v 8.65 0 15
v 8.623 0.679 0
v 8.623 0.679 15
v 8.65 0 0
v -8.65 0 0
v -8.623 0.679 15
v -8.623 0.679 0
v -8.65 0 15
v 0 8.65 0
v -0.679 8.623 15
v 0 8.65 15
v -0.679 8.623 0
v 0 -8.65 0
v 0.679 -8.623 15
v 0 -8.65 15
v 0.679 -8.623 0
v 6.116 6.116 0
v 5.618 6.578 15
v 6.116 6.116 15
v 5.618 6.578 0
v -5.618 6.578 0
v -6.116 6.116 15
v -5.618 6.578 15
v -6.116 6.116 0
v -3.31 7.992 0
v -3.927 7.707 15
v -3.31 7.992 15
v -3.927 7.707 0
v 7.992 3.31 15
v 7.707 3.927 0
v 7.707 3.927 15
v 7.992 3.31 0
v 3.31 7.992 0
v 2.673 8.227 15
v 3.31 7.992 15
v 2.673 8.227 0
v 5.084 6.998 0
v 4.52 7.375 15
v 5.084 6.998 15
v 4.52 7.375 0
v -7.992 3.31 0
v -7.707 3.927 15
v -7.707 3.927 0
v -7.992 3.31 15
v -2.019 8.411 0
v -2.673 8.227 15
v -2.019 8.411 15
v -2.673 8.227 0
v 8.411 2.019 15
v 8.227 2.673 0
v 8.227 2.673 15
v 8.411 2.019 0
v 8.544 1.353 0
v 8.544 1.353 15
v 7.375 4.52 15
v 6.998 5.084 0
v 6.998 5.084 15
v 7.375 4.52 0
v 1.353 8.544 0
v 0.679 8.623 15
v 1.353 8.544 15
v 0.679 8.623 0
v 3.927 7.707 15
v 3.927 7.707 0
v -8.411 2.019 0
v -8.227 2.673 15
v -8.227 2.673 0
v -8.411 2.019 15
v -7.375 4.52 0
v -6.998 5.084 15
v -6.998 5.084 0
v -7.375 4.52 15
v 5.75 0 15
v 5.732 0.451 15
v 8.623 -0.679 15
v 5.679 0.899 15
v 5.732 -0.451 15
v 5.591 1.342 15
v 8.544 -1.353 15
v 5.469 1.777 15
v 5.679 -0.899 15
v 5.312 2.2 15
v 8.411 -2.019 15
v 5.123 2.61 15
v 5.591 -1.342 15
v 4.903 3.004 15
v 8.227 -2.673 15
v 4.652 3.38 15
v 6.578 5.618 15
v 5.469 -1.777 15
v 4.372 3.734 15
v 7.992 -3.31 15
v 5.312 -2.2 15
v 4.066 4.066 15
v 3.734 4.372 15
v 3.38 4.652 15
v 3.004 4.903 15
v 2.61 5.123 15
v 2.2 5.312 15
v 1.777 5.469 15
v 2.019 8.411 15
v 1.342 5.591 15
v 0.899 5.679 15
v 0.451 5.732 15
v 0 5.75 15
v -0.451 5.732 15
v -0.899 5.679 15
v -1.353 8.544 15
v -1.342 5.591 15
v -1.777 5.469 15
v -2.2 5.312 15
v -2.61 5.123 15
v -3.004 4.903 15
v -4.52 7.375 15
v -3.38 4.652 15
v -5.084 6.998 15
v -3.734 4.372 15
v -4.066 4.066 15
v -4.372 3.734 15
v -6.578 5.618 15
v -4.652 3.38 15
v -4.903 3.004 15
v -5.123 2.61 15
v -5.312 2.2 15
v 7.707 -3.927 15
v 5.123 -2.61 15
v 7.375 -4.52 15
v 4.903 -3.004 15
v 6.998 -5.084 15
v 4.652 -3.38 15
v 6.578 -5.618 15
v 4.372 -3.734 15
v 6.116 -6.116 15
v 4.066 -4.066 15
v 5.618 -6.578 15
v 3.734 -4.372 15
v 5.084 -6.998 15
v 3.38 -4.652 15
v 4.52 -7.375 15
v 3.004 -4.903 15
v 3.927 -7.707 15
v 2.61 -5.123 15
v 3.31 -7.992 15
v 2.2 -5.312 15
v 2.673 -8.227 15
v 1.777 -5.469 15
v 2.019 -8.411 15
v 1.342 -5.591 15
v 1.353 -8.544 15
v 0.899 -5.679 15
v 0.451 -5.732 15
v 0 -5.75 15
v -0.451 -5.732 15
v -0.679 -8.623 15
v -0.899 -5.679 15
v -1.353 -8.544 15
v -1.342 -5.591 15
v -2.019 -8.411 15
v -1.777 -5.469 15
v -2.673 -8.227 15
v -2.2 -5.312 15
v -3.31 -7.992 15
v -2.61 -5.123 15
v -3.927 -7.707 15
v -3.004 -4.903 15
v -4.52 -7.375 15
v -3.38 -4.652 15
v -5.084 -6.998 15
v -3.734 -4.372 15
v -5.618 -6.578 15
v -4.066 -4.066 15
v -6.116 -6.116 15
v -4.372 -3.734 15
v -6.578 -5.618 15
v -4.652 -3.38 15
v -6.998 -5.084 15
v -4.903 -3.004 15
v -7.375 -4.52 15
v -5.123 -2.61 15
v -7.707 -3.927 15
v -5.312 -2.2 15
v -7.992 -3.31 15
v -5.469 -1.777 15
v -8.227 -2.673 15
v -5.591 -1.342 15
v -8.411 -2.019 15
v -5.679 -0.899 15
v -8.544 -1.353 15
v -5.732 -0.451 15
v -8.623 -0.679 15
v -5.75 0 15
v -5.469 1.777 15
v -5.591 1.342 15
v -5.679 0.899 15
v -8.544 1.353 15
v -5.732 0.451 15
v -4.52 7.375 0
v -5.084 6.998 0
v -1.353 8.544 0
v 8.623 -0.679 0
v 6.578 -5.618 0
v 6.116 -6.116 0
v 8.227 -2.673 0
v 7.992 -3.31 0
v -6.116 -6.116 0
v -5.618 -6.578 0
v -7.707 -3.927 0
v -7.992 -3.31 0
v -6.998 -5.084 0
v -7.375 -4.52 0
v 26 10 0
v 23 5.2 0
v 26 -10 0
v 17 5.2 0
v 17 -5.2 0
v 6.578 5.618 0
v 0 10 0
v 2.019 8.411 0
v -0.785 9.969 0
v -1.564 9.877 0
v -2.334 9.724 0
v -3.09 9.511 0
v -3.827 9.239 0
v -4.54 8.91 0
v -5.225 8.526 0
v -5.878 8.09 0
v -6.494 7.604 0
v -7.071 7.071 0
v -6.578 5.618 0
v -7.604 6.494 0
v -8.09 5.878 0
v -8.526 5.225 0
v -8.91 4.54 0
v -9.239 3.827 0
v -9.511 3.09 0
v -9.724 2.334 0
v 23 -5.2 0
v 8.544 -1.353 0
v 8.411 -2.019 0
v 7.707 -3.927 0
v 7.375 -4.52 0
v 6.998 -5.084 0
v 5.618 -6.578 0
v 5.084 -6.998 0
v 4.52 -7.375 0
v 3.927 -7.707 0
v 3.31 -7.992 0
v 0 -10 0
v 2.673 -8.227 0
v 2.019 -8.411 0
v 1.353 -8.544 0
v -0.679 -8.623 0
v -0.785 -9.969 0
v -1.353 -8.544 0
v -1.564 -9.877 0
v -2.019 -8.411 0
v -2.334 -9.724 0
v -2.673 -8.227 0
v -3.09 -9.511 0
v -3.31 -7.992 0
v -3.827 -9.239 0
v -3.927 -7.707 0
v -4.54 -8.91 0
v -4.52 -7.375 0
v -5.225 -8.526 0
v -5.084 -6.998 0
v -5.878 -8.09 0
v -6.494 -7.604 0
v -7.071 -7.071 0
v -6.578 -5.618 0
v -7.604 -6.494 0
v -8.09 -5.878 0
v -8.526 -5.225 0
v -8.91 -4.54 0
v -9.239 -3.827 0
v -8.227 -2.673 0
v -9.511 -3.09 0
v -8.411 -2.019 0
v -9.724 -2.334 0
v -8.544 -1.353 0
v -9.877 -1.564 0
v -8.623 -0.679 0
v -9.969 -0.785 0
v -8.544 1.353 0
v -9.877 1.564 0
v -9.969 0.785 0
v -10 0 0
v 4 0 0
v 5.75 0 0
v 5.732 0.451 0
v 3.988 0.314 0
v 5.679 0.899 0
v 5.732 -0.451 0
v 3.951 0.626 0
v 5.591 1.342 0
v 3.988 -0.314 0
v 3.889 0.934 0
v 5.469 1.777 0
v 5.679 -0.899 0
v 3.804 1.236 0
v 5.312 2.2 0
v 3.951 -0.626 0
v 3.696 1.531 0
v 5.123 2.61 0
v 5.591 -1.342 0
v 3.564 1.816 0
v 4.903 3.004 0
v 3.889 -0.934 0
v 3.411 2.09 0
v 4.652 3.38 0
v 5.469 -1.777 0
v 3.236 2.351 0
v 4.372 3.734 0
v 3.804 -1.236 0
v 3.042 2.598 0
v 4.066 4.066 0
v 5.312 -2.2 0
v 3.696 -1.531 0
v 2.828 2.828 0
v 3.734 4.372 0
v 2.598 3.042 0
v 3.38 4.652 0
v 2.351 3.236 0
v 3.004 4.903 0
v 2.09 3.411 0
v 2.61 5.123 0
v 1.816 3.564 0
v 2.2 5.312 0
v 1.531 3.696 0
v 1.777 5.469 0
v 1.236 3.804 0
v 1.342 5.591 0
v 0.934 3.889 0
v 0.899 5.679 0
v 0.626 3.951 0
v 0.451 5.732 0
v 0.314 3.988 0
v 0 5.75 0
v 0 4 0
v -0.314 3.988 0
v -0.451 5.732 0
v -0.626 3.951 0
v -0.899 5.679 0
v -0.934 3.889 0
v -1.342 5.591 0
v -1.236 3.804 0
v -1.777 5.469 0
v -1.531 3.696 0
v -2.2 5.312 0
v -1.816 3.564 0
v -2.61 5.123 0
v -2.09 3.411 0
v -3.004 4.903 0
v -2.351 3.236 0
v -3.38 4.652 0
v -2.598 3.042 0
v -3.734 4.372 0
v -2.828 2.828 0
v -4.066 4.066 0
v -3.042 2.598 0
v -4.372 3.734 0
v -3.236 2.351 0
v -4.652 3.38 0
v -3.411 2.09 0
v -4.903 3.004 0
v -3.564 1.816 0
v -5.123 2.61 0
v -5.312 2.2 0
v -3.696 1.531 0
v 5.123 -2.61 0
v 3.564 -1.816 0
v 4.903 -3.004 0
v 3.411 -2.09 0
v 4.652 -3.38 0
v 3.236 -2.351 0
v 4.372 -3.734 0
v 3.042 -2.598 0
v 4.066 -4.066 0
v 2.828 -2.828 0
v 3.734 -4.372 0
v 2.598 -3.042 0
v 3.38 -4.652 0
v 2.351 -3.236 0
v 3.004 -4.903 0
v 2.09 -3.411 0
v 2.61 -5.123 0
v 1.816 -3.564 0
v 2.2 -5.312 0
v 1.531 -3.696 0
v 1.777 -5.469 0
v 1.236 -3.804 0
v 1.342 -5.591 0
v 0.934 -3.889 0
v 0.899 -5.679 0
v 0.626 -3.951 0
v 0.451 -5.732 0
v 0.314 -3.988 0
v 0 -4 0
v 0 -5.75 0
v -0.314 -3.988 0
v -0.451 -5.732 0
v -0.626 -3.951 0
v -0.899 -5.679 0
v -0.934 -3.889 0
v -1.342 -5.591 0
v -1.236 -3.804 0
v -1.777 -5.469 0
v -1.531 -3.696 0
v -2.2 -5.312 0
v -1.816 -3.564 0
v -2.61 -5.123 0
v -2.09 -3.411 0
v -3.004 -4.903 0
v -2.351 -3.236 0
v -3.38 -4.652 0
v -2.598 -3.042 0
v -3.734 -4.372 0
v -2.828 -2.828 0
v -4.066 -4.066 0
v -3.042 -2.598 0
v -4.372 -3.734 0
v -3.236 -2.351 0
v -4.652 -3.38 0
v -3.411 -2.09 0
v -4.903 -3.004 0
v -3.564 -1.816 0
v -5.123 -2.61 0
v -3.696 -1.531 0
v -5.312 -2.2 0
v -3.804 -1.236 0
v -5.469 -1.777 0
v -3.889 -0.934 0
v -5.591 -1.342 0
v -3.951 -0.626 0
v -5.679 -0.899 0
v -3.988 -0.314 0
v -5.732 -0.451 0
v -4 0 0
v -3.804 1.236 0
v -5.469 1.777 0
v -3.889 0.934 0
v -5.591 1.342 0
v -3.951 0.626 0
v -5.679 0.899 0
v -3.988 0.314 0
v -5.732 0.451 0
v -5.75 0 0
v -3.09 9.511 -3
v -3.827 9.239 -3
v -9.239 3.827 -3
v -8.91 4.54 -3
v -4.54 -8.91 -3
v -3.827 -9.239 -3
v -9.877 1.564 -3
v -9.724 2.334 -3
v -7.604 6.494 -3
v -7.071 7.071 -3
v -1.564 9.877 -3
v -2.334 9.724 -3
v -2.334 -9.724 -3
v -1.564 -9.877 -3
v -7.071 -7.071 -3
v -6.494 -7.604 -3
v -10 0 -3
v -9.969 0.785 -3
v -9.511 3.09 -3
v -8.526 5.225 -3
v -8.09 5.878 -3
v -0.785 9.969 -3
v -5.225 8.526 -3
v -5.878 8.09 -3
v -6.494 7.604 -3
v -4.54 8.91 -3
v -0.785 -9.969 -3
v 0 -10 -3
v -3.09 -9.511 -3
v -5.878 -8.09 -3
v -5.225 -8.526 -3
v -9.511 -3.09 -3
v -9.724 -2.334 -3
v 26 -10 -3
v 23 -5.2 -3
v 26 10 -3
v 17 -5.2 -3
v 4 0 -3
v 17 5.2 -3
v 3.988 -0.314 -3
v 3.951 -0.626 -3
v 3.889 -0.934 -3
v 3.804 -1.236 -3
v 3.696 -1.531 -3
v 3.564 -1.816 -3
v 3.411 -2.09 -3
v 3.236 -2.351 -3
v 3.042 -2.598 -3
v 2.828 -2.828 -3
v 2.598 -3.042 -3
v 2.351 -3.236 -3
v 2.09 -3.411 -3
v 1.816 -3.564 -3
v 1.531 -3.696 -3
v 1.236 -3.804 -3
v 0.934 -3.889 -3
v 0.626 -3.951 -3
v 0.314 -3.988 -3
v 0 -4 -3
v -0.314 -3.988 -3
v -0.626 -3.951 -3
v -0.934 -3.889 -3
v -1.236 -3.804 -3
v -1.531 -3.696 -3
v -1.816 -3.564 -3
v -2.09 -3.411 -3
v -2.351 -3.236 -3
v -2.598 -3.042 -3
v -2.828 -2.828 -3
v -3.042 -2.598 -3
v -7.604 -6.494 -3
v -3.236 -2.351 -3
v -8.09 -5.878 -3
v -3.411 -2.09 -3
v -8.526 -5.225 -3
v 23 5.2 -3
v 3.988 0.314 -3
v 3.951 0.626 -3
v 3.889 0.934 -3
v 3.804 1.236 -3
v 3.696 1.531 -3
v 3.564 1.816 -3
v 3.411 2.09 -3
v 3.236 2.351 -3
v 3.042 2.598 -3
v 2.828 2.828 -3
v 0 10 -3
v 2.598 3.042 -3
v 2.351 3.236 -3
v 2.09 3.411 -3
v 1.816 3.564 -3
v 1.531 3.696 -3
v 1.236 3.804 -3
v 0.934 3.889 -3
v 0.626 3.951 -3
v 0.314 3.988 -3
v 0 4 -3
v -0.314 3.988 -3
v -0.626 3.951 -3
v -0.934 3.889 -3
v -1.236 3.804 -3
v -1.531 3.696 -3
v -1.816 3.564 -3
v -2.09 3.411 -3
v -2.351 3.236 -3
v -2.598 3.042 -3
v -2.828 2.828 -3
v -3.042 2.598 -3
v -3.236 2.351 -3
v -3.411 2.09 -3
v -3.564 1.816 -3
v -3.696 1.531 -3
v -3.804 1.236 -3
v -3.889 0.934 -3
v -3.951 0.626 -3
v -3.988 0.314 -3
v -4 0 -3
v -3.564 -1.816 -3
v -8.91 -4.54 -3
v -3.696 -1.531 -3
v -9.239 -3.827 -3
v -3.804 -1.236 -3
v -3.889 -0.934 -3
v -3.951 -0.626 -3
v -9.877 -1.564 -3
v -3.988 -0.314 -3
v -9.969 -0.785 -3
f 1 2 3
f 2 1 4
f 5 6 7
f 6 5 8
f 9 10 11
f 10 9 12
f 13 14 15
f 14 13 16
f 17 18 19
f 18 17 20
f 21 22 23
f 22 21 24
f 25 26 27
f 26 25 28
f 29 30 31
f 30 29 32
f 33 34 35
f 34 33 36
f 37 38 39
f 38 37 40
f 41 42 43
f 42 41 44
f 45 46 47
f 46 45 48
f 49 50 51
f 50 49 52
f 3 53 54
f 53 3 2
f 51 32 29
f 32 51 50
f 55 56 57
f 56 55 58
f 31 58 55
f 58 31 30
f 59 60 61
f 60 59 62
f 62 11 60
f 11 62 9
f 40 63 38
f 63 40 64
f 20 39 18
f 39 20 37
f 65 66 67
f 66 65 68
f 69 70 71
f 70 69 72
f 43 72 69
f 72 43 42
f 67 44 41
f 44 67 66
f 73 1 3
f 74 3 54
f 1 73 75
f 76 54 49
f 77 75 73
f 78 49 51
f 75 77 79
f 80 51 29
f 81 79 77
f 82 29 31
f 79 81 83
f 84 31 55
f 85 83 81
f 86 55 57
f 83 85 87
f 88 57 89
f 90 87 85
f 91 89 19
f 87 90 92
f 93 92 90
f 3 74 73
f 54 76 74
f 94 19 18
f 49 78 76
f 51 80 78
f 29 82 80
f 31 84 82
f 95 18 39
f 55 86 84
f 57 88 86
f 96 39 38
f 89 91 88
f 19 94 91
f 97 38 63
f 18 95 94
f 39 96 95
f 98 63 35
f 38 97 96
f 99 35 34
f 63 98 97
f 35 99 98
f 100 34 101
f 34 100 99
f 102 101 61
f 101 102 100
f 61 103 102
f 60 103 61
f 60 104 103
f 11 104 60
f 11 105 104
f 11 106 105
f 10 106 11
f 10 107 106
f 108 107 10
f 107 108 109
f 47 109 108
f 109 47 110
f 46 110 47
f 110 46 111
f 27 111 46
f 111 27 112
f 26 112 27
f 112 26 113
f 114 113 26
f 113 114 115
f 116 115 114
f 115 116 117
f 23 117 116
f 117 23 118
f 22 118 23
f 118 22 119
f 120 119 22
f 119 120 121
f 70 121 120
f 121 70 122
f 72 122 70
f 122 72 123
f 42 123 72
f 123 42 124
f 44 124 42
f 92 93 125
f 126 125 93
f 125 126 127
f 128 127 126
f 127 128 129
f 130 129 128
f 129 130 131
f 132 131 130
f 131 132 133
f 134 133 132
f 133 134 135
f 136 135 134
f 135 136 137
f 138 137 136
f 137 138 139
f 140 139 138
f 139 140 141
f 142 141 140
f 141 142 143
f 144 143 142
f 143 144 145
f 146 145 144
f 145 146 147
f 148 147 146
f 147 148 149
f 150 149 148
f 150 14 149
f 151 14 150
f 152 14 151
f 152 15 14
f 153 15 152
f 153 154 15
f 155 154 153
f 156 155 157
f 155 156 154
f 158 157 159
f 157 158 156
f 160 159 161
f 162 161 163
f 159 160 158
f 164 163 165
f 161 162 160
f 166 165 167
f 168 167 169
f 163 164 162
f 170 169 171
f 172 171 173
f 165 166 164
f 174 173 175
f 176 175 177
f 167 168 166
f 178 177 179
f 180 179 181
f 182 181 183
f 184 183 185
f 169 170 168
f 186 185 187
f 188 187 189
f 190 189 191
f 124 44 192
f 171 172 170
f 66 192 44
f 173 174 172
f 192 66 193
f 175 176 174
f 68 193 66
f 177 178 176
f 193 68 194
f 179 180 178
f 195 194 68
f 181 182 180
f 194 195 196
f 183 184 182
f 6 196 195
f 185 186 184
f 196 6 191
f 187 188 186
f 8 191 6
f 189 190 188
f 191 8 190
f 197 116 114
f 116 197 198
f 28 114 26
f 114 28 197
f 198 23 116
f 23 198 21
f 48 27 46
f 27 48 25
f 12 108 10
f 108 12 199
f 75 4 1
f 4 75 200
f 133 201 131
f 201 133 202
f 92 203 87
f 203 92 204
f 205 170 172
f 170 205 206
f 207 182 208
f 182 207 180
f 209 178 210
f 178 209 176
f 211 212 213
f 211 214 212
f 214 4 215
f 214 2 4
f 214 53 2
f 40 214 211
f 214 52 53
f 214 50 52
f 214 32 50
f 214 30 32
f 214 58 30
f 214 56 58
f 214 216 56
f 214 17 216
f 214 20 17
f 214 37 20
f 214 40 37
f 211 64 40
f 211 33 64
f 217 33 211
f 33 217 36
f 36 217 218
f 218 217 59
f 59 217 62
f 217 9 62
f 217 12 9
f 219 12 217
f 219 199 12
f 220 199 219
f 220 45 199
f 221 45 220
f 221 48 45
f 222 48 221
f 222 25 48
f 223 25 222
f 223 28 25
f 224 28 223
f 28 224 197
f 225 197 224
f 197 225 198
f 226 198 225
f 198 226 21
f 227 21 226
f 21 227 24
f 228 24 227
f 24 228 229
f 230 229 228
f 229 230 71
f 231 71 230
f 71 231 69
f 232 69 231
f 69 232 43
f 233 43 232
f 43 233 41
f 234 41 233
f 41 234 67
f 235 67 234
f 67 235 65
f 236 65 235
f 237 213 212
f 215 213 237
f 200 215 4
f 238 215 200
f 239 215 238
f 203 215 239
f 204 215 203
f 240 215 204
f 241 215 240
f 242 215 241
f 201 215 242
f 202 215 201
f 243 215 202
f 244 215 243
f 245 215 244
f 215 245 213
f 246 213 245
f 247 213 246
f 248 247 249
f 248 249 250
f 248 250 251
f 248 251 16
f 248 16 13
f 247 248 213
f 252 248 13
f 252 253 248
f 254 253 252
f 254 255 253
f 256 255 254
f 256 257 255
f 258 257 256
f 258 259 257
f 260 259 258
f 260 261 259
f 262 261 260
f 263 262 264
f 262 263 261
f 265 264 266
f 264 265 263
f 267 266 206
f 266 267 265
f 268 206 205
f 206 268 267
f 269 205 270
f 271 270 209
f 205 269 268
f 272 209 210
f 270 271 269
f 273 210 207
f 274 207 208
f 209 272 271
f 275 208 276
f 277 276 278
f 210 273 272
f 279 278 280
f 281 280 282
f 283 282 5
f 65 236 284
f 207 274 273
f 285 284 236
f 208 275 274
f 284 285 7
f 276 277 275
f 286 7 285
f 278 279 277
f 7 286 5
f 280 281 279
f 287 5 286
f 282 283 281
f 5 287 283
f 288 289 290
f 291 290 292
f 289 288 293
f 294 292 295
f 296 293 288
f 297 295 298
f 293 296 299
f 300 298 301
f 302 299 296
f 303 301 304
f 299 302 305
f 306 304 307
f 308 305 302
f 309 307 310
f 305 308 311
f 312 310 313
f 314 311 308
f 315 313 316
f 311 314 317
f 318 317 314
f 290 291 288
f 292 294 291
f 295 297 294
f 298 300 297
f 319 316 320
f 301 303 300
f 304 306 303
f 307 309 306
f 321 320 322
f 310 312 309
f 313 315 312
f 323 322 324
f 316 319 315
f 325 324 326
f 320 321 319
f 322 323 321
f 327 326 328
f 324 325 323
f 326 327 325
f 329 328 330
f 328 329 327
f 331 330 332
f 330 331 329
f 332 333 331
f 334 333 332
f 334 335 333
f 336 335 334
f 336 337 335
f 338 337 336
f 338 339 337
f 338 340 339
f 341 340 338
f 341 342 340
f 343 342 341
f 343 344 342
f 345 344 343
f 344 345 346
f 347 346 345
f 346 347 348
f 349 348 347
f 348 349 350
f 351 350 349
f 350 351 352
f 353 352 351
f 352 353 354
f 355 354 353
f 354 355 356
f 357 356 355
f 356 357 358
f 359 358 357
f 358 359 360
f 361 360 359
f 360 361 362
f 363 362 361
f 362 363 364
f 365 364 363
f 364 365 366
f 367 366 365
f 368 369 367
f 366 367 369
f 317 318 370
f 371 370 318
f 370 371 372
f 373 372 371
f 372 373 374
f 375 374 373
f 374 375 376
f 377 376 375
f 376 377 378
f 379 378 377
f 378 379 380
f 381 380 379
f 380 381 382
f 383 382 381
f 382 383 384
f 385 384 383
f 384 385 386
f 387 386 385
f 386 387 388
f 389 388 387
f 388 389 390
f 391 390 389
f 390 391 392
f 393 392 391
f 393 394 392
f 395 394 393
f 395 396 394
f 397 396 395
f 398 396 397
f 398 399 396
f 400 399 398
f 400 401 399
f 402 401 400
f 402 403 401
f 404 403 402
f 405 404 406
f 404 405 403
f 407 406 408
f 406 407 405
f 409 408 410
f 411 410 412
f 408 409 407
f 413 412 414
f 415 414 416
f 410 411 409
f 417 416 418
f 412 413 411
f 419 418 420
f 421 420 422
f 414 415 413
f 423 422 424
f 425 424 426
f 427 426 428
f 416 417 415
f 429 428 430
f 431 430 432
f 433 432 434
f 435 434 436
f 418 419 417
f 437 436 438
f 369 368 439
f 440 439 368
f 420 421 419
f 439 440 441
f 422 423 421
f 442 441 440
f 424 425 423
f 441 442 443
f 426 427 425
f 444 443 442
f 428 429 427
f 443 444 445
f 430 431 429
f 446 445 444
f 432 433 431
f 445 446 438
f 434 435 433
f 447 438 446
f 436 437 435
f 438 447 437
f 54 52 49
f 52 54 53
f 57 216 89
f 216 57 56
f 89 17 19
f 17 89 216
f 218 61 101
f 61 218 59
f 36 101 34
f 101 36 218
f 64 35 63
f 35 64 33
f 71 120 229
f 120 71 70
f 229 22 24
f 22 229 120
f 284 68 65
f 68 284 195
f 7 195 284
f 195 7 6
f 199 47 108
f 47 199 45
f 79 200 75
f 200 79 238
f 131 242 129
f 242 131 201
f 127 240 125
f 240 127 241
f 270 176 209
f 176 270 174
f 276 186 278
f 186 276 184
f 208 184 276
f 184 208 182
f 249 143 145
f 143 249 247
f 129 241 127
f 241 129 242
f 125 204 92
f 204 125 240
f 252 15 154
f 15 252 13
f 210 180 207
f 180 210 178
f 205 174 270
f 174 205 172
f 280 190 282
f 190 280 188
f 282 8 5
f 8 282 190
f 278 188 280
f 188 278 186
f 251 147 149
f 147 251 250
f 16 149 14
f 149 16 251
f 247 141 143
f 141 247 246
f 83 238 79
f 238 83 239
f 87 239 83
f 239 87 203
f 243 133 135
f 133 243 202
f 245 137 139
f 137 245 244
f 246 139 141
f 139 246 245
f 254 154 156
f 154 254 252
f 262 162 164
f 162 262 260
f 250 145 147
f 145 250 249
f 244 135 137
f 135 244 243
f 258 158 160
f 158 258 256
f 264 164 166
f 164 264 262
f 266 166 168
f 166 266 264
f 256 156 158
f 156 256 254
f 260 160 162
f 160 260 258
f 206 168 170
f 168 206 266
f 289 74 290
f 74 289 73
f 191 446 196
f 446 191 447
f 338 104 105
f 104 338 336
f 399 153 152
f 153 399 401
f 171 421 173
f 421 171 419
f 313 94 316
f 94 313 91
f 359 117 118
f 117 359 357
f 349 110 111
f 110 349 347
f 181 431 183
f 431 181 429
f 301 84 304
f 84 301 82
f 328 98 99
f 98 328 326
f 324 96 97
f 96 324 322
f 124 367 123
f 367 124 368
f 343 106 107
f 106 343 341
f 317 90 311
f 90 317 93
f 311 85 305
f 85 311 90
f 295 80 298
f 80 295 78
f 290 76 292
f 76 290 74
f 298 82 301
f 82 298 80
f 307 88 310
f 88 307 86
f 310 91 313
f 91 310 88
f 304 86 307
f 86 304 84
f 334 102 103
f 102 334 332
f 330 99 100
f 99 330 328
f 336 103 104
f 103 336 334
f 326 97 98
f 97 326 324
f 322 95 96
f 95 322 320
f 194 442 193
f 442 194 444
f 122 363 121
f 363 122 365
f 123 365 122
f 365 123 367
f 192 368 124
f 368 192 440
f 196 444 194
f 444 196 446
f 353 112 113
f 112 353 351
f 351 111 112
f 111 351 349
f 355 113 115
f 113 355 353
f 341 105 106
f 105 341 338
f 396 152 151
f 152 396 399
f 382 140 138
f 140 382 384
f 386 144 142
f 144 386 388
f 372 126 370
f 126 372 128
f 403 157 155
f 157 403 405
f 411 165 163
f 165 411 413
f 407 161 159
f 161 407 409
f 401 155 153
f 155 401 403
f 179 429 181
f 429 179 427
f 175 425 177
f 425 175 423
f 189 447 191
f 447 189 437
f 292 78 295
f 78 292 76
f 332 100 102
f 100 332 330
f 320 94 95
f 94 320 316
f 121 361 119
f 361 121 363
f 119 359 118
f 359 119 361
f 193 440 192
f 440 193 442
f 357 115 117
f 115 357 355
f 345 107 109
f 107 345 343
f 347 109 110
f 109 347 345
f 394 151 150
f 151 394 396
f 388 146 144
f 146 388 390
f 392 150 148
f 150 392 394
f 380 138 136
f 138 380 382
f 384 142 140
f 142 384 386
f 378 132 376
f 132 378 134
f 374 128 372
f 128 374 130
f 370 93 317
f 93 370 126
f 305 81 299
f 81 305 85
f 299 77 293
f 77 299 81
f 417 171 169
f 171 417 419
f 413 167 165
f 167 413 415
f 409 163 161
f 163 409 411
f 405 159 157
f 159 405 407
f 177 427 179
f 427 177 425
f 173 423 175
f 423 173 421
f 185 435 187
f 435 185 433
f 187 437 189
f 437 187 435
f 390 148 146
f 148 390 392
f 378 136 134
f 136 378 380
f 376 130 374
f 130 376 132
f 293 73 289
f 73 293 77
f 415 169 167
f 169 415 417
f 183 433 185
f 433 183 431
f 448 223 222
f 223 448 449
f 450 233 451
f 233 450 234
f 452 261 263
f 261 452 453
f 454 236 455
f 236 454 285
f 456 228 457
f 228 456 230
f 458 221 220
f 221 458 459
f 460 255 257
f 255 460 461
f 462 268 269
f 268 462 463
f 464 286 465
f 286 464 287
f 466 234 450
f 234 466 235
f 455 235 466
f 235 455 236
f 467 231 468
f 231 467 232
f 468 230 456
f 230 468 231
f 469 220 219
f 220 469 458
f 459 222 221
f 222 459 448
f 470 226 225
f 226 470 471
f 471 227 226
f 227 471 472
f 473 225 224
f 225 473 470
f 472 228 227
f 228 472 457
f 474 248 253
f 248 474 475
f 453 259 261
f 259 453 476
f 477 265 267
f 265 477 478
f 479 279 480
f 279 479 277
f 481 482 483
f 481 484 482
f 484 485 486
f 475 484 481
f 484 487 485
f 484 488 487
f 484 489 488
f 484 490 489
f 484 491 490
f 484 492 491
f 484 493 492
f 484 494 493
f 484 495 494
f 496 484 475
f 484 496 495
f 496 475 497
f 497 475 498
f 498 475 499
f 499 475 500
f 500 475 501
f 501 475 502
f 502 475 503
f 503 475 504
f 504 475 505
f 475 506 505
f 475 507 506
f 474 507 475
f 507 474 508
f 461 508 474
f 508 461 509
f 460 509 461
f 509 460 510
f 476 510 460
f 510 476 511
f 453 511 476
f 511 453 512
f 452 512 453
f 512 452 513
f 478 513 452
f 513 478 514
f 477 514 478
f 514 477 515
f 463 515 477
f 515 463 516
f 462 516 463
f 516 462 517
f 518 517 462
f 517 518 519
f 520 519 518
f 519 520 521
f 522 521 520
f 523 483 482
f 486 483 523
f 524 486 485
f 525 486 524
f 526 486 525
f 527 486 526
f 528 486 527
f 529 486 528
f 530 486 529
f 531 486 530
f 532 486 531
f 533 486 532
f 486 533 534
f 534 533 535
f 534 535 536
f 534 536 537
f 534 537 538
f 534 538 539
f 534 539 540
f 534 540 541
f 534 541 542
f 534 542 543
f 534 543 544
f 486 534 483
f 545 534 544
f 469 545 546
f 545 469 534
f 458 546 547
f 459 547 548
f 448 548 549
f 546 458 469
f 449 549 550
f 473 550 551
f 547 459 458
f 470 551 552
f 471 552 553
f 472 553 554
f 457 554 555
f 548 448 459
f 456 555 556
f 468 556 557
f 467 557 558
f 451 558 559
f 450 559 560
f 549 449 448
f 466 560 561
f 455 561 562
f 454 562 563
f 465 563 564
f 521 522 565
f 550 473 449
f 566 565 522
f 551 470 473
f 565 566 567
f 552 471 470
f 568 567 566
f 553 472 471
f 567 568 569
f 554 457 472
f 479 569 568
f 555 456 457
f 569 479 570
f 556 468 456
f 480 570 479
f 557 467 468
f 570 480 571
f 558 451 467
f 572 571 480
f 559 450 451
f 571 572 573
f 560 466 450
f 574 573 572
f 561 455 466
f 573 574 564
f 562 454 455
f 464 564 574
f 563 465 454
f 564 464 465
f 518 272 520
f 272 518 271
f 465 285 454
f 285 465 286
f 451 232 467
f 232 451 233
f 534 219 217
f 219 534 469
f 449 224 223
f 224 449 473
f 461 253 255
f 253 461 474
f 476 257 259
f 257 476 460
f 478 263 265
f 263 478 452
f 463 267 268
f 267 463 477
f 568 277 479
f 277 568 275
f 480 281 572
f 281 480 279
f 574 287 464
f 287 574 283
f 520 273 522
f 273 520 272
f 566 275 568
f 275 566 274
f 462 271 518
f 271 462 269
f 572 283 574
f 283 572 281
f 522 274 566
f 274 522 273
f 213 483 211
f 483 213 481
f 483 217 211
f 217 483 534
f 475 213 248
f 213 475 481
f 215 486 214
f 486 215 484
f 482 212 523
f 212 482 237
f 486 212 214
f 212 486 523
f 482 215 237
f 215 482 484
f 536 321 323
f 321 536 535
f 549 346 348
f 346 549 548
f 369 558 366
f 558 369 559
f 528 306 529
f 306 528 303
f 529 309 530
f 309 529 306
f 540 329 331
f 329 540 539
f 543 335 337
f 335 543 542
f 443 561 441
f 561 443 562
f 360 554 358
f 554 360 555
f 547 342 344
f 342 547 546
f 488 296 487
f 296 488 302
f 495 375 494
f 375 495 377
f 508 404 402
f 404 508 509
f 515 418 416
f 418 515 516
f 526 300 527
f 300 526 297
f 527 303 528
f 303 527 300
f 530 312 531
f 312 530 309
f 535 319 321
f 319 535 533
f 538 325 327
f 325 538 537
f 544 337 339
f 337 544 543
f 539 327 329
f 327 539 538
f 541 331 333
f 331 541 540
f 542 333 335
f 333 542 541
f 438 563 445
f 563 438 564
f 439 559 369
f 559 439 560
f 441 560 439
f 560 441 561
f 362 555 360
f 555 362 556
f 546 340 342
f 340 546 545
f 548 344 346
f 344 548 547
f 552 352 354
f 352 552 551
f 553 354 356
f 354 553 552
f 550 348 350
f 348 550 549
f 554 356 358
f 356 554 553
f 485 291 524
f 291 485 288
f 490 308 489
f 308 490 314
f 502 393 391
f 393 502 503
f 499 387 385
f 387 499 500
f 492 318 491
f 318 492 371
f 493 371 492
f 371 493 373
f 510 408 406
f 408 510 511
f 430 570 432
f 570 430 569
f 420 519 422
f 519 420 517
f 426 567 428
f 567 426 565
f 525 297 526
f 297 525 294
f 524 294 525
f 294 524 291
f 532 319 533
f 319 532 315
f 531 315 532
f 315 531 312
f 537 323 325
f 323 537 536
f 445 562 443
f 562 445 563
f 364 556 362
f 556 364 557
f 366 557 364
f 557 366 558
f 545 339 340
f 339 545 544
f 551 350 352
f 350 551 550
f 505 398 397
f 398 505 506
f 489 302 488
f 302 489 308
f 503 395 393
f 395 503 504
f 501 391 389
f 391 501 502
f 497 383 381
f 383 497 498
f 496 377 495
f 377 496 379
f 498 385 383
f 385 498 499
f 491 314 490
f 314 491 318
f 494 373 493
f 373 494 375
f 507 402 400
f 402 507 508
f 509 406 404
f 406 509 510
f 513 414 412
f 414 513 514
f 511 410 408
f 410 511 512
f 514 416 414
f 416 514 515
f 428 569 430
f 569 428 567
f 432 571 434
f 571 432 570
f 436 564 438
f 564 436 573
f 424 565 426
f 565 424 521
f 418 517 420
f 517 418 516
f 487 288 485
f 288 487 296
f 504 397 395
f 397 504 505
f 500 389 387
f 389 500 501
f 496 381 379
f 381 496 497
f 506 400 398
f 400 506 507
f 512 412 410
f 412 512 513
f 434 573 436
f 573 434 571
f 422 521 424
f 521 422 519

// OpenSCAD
// diameter of the hi-hat plastic thingy that the bottom hat rests on
stand_plastic_r = 11.3/2;

// radius of the hole the moving part fits through
hole_r = 8/2;

// outer diameter of this part
outer_r = 10;

// part thickness and height
thickness = 3;
height = 15;

tol_tight = 0.1;
tol_loose = 0.2;

platform_w = 26;
platform_h = outer_r*2;

tcrt_w = 10.2    + tol_tight*2;
tcrt_h = 5.8     + tol_tight*2;
tcrt_offset = 20 - tcrt_h/2;

disc_thick = 1.5;
disc_r = 30;

clutch_r = 9.3/2;

sensor_mount();
// disc();

module sensor_mount() {
	difference() {
		translate([0, 0, -thickness]) {
			cylinder(thickness, outer_r, outer_r, $fn=80);
			translate([0, -platform_h/2, 0]) cube([platform_w, platform_h, thickness]);
		}
		
		union() {
			translate([tcrt_offset, -tcrt_w/2, -thickness]) cube([tcrt_h, tcrt_w, thickness]);
			translate([0, 0, -thickness]) cylinder(thickness, hole_r, hole_r, $fn=80);
		}
	}

	difference() {
		cylinder(height, stand_plastic_r+thickness, stand_plastic_r+thickness, $fn=80);
		cylinder(height, stand_plastic_r+tol_tight, stand_plastic_r+tol_tight, $fn=80);
	}
}

module disc() {
	r = clutch_r + tol_loose;
	difference() {
		cylinder(disc_thick, disc_r, disc_r, $fn=80);
		cylinder(disc_thick, r, r, $fn=80);
	}
}
